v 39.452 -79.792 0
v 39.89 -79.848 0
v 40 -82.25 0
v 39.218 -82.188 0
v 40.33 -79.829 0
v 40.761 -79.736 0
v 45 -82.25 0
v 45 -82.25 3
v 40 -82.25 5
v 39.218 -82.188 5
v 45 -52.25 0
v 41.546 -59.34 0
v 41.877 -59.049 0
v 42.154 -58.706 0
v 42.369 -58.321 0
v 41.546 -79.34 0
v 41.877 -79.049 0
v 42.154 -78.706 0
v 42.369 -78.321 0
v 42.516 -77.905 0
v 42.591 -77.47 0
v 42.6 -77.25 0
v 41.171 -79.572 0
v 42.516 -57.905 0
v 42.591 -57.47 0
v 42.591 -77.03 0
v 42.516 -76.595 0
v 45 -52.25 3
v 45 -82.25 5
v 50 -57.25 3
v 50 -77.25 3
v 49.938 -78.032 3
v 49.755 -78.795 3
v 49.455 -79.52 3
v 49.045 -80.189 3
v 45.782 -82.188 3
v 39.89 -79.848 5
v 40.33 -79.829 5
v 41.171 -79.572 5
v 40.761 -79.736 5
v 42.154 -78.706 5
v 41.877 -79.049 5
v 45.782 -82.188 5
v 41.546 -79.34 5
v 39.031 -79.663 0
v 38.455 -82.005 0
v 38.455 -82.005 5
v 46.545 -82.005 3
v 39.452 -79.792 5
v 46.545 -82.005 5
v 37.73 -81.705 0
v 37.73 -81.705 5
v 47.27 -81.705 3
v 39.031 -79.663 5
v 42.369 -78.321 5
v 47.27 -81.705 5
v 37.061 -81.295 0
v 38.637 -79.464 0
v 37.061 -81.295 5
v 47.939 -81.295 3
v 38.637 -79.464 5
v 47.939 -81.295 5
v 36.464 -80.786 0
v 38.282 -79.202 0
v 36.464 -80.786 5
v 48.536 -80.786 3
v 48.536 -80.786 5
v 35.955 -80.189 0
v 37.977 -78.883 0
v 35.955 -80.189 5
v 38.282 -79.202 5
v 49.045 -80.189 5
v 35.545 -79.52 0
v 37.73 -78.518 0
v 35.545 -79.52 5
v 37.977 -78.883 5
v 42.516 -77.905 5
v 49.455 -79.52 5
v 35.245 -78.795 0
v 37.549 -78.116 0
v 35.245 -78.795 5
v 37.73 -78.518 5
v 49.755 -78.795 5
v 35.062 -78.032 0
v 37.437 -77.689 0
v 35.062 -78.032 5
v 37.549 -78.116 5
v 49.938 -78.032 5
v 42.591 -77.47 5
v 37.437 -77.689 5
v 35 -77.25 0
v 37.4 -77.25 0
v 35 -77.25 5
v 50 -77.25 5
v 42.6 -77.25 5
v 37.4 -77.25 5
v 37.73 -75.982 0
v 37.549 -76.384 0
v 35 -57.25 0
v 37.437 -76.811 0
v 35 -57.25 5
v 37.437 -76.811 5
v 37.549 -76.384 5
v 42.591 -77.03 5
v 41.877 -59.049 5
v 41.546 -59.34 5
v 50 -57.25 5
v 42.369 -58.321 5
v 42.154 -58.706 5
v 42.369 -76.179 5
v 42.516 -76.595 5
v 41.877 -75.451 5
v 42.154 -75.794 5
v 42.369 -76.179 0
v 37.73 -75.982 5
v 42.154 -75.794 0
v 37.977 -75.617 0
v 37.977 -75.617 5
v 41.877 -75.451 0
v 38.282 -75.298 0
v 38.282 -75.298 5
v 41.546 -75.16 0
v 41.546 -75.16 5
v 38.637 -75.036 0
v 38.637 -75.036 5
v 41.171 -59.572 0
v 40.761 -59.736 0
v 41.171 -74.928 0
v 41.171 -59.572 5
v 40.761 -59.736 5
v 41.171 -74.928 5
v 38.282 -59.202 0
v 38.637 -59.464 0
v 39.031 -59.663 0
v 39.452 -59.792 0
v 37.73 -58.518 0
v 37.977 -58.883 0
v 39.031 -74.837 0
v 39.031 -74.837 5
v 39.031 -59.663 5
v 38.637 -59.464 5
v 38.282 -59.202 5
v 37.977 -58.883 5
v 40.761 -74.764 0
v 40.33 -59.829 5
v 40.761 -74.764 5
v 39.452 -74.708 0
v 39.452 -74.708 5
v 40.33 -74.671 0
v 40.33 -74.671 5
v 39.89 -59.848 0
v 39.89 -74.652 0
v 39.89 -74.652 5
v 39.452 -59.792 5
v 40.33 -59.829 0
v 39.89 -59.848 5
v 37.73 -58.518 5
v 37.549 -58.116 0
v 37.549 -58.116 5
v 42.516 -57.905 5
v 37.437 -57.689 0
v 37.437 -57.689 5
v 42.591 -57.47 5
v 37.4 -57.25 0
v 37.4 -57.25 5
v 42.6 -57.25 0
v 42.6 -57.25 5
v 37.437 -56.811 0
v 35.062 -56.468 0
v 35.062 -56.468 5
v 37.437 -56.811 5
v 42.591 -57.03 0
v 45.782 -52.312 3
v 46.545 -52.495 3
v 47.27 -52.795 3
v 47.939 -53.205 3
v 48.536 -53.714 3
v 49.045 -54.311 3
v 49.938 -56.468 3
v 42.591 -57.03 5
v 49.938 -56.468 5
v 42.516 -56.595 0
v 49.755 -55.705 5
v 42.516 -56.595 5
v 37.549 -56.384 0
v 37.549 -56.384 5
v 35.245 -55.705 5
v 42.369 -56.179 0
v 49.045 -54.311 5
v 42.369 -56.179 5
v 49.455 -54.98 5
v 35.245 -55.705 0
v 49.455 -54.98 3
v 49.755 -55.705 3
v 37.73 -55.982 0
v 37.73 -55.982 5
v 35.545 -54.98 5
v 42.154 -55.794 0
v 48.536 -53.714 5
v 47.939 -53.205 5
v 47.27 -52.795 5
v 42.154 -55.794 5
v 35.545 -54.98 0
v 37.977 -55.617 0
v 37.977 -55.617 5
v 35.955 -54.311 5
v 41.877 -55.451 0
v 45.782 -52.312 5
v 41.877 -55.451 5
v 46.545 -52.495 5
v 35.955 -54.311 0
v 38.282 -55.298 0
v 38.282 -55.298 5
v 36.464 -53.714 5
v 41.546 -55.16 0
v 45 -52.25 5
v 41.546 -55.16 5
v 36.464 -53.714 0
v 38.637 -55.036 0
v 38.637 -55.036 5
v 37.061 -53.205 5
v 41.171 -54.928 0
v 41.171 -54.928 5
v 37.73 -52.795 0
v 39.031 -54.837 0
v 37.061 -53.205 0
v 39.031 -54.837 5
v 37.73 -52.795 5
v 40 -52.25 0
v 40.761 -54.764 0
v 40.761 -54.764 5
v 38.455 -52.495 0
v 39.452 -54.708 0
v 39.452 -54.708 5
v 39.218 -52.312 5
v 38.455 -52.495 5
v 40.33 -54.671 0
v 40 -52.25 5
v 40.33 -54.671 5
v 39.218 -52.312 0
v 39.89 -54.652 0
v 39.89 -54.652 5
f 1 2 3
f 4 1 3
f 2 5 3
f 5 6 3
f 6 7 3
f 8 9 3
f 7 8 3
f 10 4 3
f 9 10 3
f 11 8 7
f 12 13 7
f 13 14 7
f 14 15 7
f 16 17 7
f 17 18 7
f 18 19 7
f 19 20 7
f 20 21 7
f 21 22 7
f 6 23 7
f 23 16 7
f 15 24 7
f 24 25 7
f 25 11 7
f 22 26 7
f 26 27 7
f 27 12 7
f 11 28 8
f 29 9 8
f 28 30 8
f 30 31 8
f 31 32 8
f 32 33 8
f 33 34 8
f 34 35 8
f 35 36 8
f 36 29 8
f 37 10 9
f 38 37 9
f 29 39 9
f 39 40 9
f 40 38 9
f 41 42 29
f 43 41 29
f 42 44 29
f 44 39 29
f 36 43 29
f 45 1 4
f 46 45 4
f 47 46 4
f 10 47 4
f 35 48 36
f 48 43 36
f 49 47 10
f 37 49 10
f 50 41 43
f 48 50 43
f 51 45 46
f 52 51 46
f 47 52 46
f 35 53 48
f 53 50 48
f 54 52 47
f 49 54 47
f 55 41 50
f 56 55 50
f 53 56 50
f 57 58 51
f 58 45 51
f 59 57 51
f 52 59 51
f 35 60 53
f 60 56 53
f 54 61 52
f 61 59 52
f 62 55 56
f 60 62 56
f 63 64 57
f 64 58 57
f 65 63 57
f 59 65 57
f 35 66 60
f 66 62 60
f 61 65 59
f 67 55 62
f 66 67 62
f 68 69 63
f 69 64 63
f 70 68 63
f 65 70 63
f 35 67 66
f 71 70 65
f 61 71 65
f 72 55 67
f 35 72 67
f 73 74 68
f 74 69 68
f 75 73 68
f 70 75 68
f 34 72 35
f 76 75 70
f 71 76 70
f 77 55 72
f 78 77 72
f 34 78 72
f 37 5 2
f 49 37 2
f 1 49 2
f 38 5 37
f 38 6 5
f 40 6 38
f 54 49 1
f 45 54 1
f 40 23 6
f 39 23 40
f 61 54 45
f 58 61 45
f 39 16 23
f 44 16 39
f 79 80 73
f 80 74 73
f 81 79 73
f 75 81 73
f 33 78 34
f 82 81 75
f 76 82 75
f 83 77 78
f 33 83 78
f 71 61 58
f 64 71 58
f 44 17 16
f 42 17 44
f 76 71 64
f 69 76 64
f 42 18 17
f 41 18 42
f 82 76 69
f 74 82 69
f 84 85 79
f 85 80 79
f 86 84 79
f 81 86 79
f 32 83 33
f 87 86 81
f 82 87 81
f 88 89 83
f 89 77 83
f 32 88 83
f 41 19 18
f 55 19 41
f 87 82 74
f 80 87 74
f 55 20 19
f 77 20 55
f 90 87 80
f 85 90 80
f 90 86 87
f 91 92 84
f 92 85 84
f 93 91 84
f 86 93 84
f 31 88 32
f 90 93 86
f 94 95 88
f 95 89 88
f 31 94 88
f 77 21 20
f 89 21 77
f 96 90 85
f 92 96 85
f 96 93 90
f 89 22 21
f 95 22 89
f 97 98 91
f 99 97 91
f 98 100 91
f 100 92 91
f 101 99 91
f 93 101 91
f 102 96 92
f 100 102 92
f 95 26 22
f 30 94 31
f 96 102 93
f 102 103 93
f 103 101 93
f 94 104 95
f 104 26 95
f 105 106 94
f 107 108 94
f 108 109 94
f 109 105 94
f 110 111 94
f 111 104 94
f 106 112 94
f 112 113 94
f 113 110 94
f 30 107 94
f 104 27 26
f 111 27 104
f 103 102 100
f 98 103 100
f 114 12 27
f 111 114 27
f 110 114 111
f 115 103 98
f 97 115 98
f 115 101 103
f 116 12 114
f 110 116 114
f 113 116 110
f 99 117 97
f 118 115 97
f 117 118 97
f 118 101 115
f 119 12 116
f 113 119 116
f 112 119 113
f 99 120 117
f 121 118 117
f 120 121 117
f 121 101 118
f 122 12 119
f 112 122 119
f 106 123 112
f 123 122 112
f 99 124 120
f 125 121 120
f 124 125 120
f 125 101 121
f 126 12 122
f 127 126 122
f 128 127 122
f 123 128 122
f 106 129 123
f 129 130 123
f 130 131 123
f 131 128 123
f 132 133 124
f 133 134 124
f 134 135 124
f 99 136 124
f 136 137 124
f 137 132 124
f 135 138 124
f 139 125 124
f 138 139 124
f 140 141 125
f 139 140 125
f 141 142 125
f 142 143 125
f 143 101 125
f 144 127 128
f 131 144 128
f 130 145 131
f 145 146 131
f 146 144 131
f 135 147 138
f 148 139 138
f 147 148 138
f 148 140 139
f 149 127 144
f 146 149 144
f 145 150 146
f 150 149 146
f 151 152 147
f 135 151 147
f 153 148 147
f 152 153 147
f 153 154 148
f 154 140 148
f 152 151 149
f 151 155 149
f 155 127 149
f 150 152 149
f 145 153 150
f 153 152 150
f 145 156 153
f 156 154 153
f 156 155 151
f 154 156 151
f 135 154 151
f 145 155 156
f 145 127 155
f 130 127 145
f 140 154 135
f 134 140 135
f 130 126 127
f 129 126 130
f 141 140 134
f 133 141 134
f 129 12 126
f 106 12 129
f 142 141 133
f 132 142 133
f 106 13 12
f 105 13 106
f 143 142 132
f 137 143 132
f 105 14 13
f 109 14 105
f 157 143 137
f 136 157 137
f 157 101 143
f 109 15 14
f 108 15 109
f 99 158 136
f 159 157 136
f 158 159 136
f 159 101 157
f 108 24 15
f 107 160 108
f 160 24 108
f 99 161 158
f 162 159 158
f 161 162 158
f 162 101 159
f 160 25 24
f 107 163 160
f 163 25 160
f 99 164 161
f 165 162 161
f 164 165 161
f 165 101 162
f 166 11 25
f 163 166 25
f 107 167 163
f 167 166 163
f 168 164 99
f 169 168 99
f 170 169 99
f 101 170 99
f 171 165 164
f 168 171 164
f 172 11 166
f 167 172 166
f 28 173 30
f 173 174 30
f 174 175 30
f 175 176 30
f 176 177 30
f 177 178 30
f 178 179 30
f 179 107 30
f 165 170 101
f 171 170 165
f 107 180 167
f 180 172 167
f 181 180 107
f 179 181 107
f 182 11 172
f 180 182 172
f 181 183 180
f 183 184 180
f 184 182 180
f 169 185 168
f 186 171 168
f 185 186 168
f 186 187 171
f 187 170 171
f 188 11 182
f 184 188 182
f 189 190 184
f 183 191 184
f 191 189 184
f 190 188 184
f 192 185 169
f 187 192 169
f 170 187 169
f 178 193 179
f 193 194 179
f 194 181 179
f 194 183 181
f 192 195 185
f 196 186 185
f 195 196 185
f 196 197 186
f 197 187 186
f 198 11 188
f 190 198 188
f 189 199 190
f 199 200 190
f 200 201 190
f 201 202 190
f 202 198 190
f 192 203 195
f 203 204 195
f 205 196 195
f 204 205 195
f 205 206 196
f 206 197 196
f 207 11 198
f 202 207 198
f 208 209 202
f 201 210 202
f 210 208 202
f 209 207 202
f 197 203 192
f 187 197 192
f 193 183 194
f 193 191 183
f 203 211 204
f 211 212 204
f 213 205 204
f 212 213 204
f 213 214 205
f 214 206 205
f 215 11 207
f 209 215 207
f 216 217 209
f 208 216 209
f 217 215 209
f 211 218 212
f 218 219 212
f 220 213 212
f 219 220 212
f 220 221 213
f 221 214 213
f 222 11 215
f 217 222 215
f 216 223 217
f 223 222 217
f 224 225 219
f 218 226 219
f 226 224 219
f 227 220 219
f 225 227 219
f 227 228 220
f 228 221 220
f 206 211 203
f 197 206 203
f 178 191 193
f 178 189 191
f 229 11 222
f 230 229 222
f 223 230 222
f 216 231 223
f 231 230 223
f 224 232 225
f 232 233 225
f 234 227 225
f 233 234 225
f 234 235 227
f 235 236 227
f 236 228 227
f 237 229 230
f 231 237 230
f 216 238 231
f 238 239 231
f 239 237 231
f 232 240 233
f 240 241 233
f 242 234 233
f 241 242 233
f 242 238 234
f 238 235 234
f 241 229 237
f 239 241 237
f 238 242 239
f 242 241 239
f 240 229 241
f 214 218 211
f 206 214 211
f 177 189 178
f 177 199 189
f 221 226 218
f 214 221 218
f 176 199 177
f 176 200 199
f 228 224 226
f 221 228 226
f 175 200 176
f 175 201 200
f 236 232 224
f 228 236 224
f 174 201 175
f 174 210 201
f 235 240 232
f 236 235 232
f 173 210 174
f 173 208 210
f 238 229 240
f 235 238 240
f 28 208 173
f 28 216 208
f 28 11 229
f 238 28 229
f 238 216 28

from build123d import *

# Parameters (mm, degrees)
ESQUISSE1_W        = 10
ESQUISSE1_H        = 30
ESQUISSE1_R        = 2.6
BOSS_EXTRU_1_DEPTH = 5
ESQUISSE2_W        = 2
ESQUISSE2_H        = 30
BOSS_EXTRU_2_DEPTH = 5
CONG_1_R           = 5


with BuildPart() as part:
    # Esquisse1 → Boss.-Extru.1 (new body)
    with BuildSketch(Plane.XY):
        with Locations((40, -67.25)):
            Rectangle(ESQUISSE1_W, ESQUISSE1_H)
        with Locations((40, -77.25)):
            Circle(ESQUISSE1_R, mode=Mode.SUBTRACT)
        with Locations((40, -57.25)):
            Circle(ESQUISSE1_R, mode=Mode.SUBTRACT)
    extrude(amount=BOSS_EXTRU_1_DEPTH)

    # Esquisse2 → Boss.-Extru.2 (add)
    with BuildSketch(Plane(origin=(45, 0, 0), x_dir=(0, 0, -1), z_dir=(1, 0, 0))):
        with Locations((-4, -67.25)):
            Rectangle(ESQUISSE2_W, ESQUISSE2_H)
    extrude(amount=BOSS_EXTRU_2_DEPTH)

    # Congé1
    cong_1_edges = [part.edges().sort_by_distance(p)[0] for p in [
        (50, -82.25, 4),
        (50, -52.25, 4),
        (35, -52.25, 2.5),
        (35, -82.25, 2.5),
    ]]
    fillet(cong_1_edges, radius=CONG_1_R)


solid = part.part
